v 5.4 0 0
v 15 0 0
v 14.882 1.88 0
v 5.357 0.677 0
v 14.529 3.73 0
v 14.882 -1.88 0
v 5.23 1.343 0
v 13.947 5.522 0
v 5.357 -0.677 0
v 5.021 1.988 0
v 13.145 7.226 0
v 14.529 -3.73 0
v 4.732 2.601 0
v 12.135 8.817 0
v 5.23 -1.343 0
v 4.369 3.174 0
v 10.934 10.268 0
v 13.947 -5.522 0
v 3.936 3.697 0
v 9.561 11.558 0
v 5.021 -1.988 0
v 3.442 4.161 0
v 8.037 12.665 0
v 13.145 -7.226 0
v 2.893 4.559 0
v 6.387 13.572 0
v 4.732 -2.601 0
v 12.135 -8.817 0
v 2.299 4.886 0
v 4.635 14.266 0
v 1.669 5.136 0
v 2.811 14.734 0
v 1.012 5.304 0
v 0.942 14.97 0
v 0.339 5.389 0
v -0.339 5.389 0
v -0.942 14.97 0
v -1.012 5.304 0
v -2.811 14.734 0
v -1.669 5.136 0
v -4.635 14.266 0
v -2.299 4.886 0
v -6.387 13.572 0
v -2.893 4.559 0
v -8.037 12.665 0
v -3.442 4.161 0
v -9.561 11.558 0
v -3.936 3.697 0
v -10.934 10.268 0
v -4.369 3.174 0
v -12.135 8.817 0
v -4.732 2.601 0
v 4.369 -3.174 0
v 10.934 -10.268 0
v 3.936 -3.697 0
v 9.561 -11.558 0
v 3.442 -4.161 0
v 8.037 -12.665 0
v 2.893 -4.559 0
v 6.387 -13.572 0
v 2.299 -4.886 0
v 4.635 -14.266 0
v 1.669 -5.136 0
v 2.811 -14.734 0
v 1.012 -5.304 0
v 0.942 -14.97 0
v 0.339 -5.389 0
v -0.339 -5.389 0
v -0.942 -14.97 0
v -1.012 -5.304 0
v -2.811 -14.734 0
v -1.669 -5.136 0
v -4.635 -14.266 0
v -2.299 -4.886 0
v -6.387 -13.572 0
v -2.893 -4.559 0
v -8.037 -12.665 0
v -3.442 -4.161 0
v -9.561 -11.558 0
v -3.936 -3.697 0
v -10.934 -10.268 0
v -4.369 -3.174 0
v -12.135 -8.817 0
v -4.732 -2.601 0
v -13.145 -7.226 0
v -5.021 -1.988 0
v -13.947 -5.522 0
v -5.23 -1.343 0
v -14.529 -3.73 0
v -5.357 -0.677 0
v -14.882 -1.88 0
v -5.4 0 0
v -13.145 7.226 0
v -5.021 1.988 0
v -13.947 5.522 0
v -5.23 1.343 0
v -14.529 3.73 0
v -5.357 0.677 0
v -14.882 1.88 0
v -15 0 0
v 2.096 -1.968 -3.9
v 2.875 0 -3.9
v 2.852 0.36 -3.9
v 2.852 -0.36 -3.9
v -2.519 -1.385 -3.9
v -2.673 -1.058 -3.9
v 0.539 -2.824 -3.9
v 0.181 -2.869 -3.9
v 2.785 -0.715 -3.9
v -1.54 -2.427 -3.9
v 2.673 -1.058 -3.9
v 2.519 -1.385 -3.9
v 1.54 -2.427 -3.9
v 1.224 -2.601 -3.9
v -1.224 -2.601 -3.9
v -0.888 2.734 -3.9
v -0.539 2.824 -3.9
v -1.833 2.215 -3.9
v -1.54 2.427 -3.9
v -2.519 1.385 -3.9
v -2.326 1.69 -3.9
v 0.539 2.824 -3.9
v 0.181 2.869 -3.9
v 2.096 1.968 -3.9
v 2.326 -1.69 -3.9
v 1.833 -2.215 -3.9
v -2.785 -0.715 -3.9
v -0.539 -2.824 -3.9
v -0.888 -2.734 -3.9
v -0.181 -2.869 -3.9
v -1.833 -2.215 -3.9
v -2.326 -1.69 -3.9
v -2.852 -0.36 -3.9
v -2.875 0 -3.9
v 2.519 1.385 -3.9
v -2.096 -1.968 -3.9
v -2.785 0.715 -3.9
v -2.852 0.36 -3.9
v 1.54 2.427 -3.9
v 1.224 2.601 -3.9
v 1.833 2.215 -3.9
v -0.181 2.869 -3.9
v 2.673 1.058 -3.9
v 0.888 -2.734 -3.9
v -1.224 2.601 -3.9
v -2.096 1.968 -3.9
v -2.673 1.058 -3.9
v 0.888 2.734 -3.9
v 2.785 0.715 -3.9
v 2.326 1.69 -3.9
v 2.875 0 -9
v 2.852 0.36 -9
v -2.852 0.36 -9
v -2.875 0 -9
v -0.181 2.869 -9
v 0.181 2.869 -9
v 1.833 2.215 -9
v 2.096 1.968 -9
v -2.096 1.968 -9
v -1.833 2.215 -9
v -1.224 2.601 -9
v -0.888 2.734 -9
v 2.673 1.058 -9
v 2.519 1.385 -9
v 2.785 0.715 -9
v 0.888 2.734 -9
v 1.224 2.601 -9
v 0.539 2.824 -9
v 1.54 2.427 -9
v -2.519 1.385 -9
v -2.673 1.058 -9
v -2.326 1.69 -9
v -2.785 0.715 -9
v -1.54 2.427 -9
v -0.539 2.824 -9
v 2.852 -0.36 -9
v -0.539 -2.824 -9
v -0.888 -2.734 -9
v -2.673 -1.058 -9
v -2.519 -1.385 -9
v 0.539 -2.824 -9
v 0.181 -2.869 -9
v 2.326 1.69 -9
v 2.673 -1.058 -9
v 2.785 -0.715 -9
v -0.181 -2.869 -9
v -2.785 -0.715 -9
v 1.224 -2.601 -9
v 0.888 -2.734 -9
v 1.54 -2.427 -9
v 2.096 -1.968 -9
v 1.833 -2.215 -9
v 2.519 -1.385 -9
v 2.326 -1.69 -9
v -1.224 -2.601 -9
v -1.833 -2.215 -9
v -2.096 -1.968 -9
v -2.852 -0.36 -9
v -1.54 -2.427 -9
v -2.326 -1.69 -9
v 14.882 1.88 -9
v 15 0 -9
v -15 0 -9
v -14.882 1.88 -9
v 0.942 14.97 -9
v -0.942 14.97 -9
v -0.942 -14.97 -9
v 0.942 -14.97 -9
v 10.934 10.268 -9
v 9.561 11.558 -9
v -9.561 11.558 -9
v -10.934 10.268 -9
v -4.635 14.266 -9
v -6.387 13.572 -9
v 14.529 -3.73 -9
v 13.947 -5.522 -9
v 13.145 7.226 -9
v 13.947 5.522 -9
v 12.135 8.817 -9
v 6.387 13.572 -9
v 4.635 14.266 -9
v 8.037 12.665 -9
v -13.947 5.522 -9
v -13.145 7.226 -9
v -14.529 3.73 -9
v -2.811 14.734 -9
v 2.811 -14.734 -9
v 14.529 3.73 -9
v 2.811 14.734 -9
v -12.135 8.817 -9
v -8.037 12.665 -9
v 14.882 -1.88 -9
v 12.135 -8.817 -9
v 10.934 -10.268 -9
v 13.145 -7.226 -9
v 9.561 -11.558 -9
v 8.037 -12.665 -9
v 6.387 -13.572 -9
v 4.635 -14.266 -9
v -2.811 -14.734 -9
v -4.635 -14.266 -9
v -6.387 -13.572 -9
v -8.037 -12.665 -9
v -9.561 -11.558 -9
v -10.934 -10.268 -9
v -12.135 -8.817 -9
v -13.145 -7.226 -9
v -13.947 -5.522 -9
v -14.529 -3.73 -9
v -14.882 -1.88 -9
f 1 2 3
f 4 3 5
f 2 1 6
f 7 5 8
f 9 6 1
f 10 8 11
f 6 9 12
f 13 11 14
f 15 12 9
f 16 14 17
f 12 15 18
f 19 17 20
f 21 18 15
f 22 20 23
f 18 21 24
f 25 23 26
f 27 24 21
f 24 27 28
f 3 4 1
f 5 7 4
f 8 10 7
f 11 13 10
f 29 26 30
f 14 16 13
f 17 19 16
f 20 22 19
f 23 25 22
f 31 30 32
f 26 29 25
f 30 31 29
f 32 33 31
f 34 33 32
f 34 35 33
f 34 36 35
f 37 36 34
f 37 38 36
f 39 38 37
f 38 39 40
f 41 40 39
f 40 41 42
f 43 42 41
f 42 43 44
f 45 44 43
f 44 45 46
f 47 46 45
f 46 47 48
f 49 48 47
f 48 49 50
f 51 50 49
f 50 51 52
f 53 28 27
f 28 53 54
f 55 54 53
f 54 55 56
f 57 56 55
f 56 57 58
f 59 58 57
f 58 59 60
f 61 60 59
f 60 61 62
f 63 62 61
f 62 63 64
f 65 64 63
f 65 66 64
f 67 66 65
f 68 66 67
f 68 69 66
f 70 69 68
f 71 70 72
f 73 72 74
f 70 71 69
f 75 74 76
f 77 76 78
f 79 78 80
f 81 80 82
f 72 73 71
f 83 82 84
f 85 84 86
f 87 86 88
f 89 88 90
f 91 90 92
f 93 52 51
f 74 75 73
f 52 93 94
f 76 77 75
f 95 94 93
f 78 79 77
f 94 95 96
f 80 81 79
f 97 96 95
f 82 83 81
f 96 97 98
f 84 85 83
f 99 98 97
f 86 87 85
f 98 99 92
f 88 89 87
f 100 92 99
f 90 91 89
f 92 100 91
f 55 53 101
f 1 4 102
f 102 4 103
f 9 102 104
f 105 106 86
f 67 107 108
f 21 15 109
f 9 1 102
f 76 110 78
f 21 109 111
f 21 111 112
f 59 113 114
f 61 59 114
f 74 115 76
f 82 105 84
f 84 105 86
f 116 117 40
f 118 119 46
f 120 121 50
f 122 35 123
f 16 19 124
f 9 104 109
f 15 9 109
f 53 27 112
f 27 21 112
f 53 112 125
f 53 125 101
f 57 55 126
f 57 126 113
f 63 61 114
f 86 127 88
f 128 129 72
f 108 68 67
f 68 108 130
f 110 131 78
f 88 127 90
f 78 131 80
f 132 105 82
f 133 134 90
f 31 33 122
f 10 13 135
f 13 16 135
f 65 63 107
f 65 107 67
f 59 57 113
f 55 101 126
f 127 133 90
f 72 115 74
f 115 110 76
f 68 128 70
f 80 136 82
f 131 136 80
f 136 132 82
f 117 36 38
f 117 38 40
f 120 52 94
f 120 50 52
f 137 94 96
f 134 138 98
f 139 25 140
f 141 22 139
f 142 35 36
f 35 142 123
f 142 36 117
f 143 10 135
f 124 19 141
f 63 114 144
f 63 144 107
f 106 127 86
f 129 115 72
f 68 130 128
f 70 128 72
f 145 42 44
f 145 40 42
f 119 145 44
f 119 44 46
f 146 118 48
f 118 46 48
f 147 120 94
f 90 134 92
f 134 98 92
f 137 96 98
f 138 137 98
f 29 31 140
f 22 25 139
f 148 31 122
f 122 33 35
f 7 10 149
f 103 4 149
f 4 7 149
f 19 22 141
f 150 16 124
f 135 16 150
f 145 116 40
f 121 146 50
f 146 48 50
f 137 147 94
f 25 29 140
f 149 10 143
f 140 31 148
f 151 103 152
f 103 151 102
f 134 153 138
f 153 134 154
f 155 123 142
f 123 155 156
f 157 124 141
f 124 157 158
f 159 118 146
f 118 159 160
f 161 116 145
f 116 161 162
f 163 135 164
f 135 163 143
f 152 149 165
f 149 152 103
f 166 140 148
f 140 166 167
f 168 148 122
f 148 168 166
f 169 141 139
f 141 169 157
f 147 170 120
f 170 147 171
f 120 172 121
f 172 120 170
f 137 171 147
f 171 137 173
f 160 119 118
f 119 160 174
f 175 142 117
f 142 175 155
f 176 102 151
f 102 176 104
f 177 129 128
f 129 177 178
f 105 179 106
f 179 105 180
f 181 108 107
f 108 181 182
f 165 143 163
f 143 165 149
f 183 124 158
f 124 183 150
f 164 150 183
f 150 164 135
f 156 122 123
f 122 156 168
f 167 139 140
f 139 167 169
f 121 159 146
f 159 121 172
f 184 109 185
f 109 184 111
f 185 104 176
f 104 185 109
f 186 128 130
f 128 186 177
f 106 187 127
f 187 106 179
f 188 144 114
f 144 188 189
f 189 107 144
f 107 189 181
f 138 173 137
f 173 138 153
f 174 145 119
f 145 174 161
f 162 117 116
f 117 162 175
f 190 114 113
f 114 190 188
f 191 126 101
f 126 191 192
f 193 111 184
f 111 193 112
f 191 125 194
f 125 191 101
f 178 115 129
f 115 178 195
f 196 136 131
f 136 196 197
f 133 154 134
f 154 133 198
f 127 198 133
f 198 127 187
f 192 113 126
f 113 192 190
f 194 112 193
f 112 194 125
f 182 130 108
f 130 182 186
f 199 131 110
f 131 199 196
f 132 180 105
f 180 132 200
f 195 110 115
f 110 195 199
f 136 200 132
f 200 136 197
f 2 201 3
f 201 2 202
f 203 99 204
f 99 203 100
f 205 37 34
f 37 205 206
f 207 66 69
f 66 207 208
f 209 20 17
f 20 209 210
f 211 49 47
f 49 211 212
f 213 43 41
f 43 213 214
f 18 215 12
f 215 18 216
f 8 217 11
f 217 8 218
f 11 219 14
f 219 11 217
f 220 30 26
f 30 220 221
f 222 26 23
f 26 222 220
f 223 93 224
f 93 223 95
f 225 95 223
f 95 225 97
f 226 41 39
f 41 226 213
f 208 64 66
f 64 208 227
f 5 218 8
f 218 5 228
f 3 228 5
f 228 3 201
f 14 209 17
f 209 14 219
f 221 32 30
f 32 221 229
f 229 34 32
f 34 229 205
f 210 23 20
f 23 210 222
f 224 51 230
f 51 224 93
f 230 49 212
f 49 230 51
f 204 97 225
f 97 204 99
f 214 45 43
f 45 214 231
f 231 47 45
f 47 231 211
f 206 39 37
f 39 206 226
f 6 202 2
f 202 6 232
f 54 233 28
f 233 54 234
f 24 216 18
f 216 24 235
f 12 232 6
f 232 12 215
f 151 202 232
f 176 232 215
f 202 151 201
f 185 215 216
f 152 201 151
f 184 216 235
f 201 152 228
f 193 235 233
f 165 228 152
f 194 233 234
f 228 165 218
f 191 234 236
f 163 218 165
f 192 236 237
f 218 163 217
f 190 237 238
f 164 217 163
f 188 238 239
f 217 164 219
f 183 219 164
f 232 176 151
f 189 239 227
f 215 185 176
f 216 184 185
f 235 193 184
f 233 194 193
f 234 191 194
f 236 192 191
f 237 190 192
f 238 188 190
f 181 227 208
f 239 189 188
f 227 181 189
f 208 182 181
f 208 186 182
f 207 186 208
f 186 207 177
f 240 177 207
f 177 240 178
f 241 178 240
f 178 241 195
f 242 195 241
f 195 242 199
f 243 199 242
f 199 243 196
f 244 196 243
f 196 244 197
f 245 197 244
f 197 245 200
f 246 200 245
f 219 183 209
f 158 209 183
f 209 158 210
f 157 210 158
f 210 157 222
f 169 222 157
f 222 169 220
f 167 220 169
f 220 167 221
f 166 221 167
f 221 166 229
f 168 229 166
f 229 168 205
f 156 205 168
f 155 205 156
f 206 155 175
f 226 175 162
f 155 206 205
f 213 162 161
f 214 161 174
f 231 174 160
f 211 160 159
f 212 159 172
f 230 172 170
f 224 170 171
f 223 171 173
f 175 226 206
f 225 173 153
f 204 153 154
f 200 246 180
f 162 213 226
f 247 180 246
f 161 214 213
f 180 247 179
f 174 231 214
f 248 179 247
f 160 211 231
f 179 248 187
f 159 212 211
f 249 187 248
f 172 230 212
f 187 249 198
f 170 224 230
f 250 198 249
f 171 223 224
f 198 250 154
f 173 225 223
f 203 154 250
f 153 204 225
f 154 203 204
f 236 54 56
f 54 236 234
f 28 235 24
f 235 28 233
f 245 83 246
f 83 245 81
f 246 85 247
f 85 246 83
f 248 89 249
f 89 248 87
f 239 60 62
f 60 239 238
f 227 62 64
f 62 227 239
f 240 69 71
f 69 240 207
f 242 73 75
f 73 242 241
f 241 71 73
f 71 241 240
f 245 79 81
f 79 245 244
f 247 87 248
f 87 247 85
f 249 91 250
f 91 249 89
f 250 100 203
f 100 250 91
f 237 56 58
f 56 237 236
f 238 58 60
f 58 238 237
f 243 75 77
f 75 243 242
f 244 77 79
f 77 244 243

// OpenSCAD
$fn = 50;


difference() {
	union() {
		translate(v = [0, 0, -9.0000000000]) {
			cylinder(h = 9, r = 15.0000000000);
		}
	}
	union() {
		translate(v = [0, 0, 0]) {
			rotate(a = [0, 0, 0]) {
				difference() {
					union() {
						translate(v = [0, 0, -12.0000000000]) {
							cylinder(h = 12, r = 2.6000000000);
						}
						translate(v = [0, 0, -3.9000000000]) {
							cylinder(h = 3.9000000000, r1 = 2.8750000000, r2 = 5.4000000000);
						}
						translate(v = [0, 0, -12.0000000000]) {
							cylinder(h = 12, r = 2.8750000000);
						}
						translate(v = [0, 0, -12.0000000000]) {
							cylinder(h = 12, r = 2.6000000000);
						}
					}
					union();
				}
			}
		}
	}
}
